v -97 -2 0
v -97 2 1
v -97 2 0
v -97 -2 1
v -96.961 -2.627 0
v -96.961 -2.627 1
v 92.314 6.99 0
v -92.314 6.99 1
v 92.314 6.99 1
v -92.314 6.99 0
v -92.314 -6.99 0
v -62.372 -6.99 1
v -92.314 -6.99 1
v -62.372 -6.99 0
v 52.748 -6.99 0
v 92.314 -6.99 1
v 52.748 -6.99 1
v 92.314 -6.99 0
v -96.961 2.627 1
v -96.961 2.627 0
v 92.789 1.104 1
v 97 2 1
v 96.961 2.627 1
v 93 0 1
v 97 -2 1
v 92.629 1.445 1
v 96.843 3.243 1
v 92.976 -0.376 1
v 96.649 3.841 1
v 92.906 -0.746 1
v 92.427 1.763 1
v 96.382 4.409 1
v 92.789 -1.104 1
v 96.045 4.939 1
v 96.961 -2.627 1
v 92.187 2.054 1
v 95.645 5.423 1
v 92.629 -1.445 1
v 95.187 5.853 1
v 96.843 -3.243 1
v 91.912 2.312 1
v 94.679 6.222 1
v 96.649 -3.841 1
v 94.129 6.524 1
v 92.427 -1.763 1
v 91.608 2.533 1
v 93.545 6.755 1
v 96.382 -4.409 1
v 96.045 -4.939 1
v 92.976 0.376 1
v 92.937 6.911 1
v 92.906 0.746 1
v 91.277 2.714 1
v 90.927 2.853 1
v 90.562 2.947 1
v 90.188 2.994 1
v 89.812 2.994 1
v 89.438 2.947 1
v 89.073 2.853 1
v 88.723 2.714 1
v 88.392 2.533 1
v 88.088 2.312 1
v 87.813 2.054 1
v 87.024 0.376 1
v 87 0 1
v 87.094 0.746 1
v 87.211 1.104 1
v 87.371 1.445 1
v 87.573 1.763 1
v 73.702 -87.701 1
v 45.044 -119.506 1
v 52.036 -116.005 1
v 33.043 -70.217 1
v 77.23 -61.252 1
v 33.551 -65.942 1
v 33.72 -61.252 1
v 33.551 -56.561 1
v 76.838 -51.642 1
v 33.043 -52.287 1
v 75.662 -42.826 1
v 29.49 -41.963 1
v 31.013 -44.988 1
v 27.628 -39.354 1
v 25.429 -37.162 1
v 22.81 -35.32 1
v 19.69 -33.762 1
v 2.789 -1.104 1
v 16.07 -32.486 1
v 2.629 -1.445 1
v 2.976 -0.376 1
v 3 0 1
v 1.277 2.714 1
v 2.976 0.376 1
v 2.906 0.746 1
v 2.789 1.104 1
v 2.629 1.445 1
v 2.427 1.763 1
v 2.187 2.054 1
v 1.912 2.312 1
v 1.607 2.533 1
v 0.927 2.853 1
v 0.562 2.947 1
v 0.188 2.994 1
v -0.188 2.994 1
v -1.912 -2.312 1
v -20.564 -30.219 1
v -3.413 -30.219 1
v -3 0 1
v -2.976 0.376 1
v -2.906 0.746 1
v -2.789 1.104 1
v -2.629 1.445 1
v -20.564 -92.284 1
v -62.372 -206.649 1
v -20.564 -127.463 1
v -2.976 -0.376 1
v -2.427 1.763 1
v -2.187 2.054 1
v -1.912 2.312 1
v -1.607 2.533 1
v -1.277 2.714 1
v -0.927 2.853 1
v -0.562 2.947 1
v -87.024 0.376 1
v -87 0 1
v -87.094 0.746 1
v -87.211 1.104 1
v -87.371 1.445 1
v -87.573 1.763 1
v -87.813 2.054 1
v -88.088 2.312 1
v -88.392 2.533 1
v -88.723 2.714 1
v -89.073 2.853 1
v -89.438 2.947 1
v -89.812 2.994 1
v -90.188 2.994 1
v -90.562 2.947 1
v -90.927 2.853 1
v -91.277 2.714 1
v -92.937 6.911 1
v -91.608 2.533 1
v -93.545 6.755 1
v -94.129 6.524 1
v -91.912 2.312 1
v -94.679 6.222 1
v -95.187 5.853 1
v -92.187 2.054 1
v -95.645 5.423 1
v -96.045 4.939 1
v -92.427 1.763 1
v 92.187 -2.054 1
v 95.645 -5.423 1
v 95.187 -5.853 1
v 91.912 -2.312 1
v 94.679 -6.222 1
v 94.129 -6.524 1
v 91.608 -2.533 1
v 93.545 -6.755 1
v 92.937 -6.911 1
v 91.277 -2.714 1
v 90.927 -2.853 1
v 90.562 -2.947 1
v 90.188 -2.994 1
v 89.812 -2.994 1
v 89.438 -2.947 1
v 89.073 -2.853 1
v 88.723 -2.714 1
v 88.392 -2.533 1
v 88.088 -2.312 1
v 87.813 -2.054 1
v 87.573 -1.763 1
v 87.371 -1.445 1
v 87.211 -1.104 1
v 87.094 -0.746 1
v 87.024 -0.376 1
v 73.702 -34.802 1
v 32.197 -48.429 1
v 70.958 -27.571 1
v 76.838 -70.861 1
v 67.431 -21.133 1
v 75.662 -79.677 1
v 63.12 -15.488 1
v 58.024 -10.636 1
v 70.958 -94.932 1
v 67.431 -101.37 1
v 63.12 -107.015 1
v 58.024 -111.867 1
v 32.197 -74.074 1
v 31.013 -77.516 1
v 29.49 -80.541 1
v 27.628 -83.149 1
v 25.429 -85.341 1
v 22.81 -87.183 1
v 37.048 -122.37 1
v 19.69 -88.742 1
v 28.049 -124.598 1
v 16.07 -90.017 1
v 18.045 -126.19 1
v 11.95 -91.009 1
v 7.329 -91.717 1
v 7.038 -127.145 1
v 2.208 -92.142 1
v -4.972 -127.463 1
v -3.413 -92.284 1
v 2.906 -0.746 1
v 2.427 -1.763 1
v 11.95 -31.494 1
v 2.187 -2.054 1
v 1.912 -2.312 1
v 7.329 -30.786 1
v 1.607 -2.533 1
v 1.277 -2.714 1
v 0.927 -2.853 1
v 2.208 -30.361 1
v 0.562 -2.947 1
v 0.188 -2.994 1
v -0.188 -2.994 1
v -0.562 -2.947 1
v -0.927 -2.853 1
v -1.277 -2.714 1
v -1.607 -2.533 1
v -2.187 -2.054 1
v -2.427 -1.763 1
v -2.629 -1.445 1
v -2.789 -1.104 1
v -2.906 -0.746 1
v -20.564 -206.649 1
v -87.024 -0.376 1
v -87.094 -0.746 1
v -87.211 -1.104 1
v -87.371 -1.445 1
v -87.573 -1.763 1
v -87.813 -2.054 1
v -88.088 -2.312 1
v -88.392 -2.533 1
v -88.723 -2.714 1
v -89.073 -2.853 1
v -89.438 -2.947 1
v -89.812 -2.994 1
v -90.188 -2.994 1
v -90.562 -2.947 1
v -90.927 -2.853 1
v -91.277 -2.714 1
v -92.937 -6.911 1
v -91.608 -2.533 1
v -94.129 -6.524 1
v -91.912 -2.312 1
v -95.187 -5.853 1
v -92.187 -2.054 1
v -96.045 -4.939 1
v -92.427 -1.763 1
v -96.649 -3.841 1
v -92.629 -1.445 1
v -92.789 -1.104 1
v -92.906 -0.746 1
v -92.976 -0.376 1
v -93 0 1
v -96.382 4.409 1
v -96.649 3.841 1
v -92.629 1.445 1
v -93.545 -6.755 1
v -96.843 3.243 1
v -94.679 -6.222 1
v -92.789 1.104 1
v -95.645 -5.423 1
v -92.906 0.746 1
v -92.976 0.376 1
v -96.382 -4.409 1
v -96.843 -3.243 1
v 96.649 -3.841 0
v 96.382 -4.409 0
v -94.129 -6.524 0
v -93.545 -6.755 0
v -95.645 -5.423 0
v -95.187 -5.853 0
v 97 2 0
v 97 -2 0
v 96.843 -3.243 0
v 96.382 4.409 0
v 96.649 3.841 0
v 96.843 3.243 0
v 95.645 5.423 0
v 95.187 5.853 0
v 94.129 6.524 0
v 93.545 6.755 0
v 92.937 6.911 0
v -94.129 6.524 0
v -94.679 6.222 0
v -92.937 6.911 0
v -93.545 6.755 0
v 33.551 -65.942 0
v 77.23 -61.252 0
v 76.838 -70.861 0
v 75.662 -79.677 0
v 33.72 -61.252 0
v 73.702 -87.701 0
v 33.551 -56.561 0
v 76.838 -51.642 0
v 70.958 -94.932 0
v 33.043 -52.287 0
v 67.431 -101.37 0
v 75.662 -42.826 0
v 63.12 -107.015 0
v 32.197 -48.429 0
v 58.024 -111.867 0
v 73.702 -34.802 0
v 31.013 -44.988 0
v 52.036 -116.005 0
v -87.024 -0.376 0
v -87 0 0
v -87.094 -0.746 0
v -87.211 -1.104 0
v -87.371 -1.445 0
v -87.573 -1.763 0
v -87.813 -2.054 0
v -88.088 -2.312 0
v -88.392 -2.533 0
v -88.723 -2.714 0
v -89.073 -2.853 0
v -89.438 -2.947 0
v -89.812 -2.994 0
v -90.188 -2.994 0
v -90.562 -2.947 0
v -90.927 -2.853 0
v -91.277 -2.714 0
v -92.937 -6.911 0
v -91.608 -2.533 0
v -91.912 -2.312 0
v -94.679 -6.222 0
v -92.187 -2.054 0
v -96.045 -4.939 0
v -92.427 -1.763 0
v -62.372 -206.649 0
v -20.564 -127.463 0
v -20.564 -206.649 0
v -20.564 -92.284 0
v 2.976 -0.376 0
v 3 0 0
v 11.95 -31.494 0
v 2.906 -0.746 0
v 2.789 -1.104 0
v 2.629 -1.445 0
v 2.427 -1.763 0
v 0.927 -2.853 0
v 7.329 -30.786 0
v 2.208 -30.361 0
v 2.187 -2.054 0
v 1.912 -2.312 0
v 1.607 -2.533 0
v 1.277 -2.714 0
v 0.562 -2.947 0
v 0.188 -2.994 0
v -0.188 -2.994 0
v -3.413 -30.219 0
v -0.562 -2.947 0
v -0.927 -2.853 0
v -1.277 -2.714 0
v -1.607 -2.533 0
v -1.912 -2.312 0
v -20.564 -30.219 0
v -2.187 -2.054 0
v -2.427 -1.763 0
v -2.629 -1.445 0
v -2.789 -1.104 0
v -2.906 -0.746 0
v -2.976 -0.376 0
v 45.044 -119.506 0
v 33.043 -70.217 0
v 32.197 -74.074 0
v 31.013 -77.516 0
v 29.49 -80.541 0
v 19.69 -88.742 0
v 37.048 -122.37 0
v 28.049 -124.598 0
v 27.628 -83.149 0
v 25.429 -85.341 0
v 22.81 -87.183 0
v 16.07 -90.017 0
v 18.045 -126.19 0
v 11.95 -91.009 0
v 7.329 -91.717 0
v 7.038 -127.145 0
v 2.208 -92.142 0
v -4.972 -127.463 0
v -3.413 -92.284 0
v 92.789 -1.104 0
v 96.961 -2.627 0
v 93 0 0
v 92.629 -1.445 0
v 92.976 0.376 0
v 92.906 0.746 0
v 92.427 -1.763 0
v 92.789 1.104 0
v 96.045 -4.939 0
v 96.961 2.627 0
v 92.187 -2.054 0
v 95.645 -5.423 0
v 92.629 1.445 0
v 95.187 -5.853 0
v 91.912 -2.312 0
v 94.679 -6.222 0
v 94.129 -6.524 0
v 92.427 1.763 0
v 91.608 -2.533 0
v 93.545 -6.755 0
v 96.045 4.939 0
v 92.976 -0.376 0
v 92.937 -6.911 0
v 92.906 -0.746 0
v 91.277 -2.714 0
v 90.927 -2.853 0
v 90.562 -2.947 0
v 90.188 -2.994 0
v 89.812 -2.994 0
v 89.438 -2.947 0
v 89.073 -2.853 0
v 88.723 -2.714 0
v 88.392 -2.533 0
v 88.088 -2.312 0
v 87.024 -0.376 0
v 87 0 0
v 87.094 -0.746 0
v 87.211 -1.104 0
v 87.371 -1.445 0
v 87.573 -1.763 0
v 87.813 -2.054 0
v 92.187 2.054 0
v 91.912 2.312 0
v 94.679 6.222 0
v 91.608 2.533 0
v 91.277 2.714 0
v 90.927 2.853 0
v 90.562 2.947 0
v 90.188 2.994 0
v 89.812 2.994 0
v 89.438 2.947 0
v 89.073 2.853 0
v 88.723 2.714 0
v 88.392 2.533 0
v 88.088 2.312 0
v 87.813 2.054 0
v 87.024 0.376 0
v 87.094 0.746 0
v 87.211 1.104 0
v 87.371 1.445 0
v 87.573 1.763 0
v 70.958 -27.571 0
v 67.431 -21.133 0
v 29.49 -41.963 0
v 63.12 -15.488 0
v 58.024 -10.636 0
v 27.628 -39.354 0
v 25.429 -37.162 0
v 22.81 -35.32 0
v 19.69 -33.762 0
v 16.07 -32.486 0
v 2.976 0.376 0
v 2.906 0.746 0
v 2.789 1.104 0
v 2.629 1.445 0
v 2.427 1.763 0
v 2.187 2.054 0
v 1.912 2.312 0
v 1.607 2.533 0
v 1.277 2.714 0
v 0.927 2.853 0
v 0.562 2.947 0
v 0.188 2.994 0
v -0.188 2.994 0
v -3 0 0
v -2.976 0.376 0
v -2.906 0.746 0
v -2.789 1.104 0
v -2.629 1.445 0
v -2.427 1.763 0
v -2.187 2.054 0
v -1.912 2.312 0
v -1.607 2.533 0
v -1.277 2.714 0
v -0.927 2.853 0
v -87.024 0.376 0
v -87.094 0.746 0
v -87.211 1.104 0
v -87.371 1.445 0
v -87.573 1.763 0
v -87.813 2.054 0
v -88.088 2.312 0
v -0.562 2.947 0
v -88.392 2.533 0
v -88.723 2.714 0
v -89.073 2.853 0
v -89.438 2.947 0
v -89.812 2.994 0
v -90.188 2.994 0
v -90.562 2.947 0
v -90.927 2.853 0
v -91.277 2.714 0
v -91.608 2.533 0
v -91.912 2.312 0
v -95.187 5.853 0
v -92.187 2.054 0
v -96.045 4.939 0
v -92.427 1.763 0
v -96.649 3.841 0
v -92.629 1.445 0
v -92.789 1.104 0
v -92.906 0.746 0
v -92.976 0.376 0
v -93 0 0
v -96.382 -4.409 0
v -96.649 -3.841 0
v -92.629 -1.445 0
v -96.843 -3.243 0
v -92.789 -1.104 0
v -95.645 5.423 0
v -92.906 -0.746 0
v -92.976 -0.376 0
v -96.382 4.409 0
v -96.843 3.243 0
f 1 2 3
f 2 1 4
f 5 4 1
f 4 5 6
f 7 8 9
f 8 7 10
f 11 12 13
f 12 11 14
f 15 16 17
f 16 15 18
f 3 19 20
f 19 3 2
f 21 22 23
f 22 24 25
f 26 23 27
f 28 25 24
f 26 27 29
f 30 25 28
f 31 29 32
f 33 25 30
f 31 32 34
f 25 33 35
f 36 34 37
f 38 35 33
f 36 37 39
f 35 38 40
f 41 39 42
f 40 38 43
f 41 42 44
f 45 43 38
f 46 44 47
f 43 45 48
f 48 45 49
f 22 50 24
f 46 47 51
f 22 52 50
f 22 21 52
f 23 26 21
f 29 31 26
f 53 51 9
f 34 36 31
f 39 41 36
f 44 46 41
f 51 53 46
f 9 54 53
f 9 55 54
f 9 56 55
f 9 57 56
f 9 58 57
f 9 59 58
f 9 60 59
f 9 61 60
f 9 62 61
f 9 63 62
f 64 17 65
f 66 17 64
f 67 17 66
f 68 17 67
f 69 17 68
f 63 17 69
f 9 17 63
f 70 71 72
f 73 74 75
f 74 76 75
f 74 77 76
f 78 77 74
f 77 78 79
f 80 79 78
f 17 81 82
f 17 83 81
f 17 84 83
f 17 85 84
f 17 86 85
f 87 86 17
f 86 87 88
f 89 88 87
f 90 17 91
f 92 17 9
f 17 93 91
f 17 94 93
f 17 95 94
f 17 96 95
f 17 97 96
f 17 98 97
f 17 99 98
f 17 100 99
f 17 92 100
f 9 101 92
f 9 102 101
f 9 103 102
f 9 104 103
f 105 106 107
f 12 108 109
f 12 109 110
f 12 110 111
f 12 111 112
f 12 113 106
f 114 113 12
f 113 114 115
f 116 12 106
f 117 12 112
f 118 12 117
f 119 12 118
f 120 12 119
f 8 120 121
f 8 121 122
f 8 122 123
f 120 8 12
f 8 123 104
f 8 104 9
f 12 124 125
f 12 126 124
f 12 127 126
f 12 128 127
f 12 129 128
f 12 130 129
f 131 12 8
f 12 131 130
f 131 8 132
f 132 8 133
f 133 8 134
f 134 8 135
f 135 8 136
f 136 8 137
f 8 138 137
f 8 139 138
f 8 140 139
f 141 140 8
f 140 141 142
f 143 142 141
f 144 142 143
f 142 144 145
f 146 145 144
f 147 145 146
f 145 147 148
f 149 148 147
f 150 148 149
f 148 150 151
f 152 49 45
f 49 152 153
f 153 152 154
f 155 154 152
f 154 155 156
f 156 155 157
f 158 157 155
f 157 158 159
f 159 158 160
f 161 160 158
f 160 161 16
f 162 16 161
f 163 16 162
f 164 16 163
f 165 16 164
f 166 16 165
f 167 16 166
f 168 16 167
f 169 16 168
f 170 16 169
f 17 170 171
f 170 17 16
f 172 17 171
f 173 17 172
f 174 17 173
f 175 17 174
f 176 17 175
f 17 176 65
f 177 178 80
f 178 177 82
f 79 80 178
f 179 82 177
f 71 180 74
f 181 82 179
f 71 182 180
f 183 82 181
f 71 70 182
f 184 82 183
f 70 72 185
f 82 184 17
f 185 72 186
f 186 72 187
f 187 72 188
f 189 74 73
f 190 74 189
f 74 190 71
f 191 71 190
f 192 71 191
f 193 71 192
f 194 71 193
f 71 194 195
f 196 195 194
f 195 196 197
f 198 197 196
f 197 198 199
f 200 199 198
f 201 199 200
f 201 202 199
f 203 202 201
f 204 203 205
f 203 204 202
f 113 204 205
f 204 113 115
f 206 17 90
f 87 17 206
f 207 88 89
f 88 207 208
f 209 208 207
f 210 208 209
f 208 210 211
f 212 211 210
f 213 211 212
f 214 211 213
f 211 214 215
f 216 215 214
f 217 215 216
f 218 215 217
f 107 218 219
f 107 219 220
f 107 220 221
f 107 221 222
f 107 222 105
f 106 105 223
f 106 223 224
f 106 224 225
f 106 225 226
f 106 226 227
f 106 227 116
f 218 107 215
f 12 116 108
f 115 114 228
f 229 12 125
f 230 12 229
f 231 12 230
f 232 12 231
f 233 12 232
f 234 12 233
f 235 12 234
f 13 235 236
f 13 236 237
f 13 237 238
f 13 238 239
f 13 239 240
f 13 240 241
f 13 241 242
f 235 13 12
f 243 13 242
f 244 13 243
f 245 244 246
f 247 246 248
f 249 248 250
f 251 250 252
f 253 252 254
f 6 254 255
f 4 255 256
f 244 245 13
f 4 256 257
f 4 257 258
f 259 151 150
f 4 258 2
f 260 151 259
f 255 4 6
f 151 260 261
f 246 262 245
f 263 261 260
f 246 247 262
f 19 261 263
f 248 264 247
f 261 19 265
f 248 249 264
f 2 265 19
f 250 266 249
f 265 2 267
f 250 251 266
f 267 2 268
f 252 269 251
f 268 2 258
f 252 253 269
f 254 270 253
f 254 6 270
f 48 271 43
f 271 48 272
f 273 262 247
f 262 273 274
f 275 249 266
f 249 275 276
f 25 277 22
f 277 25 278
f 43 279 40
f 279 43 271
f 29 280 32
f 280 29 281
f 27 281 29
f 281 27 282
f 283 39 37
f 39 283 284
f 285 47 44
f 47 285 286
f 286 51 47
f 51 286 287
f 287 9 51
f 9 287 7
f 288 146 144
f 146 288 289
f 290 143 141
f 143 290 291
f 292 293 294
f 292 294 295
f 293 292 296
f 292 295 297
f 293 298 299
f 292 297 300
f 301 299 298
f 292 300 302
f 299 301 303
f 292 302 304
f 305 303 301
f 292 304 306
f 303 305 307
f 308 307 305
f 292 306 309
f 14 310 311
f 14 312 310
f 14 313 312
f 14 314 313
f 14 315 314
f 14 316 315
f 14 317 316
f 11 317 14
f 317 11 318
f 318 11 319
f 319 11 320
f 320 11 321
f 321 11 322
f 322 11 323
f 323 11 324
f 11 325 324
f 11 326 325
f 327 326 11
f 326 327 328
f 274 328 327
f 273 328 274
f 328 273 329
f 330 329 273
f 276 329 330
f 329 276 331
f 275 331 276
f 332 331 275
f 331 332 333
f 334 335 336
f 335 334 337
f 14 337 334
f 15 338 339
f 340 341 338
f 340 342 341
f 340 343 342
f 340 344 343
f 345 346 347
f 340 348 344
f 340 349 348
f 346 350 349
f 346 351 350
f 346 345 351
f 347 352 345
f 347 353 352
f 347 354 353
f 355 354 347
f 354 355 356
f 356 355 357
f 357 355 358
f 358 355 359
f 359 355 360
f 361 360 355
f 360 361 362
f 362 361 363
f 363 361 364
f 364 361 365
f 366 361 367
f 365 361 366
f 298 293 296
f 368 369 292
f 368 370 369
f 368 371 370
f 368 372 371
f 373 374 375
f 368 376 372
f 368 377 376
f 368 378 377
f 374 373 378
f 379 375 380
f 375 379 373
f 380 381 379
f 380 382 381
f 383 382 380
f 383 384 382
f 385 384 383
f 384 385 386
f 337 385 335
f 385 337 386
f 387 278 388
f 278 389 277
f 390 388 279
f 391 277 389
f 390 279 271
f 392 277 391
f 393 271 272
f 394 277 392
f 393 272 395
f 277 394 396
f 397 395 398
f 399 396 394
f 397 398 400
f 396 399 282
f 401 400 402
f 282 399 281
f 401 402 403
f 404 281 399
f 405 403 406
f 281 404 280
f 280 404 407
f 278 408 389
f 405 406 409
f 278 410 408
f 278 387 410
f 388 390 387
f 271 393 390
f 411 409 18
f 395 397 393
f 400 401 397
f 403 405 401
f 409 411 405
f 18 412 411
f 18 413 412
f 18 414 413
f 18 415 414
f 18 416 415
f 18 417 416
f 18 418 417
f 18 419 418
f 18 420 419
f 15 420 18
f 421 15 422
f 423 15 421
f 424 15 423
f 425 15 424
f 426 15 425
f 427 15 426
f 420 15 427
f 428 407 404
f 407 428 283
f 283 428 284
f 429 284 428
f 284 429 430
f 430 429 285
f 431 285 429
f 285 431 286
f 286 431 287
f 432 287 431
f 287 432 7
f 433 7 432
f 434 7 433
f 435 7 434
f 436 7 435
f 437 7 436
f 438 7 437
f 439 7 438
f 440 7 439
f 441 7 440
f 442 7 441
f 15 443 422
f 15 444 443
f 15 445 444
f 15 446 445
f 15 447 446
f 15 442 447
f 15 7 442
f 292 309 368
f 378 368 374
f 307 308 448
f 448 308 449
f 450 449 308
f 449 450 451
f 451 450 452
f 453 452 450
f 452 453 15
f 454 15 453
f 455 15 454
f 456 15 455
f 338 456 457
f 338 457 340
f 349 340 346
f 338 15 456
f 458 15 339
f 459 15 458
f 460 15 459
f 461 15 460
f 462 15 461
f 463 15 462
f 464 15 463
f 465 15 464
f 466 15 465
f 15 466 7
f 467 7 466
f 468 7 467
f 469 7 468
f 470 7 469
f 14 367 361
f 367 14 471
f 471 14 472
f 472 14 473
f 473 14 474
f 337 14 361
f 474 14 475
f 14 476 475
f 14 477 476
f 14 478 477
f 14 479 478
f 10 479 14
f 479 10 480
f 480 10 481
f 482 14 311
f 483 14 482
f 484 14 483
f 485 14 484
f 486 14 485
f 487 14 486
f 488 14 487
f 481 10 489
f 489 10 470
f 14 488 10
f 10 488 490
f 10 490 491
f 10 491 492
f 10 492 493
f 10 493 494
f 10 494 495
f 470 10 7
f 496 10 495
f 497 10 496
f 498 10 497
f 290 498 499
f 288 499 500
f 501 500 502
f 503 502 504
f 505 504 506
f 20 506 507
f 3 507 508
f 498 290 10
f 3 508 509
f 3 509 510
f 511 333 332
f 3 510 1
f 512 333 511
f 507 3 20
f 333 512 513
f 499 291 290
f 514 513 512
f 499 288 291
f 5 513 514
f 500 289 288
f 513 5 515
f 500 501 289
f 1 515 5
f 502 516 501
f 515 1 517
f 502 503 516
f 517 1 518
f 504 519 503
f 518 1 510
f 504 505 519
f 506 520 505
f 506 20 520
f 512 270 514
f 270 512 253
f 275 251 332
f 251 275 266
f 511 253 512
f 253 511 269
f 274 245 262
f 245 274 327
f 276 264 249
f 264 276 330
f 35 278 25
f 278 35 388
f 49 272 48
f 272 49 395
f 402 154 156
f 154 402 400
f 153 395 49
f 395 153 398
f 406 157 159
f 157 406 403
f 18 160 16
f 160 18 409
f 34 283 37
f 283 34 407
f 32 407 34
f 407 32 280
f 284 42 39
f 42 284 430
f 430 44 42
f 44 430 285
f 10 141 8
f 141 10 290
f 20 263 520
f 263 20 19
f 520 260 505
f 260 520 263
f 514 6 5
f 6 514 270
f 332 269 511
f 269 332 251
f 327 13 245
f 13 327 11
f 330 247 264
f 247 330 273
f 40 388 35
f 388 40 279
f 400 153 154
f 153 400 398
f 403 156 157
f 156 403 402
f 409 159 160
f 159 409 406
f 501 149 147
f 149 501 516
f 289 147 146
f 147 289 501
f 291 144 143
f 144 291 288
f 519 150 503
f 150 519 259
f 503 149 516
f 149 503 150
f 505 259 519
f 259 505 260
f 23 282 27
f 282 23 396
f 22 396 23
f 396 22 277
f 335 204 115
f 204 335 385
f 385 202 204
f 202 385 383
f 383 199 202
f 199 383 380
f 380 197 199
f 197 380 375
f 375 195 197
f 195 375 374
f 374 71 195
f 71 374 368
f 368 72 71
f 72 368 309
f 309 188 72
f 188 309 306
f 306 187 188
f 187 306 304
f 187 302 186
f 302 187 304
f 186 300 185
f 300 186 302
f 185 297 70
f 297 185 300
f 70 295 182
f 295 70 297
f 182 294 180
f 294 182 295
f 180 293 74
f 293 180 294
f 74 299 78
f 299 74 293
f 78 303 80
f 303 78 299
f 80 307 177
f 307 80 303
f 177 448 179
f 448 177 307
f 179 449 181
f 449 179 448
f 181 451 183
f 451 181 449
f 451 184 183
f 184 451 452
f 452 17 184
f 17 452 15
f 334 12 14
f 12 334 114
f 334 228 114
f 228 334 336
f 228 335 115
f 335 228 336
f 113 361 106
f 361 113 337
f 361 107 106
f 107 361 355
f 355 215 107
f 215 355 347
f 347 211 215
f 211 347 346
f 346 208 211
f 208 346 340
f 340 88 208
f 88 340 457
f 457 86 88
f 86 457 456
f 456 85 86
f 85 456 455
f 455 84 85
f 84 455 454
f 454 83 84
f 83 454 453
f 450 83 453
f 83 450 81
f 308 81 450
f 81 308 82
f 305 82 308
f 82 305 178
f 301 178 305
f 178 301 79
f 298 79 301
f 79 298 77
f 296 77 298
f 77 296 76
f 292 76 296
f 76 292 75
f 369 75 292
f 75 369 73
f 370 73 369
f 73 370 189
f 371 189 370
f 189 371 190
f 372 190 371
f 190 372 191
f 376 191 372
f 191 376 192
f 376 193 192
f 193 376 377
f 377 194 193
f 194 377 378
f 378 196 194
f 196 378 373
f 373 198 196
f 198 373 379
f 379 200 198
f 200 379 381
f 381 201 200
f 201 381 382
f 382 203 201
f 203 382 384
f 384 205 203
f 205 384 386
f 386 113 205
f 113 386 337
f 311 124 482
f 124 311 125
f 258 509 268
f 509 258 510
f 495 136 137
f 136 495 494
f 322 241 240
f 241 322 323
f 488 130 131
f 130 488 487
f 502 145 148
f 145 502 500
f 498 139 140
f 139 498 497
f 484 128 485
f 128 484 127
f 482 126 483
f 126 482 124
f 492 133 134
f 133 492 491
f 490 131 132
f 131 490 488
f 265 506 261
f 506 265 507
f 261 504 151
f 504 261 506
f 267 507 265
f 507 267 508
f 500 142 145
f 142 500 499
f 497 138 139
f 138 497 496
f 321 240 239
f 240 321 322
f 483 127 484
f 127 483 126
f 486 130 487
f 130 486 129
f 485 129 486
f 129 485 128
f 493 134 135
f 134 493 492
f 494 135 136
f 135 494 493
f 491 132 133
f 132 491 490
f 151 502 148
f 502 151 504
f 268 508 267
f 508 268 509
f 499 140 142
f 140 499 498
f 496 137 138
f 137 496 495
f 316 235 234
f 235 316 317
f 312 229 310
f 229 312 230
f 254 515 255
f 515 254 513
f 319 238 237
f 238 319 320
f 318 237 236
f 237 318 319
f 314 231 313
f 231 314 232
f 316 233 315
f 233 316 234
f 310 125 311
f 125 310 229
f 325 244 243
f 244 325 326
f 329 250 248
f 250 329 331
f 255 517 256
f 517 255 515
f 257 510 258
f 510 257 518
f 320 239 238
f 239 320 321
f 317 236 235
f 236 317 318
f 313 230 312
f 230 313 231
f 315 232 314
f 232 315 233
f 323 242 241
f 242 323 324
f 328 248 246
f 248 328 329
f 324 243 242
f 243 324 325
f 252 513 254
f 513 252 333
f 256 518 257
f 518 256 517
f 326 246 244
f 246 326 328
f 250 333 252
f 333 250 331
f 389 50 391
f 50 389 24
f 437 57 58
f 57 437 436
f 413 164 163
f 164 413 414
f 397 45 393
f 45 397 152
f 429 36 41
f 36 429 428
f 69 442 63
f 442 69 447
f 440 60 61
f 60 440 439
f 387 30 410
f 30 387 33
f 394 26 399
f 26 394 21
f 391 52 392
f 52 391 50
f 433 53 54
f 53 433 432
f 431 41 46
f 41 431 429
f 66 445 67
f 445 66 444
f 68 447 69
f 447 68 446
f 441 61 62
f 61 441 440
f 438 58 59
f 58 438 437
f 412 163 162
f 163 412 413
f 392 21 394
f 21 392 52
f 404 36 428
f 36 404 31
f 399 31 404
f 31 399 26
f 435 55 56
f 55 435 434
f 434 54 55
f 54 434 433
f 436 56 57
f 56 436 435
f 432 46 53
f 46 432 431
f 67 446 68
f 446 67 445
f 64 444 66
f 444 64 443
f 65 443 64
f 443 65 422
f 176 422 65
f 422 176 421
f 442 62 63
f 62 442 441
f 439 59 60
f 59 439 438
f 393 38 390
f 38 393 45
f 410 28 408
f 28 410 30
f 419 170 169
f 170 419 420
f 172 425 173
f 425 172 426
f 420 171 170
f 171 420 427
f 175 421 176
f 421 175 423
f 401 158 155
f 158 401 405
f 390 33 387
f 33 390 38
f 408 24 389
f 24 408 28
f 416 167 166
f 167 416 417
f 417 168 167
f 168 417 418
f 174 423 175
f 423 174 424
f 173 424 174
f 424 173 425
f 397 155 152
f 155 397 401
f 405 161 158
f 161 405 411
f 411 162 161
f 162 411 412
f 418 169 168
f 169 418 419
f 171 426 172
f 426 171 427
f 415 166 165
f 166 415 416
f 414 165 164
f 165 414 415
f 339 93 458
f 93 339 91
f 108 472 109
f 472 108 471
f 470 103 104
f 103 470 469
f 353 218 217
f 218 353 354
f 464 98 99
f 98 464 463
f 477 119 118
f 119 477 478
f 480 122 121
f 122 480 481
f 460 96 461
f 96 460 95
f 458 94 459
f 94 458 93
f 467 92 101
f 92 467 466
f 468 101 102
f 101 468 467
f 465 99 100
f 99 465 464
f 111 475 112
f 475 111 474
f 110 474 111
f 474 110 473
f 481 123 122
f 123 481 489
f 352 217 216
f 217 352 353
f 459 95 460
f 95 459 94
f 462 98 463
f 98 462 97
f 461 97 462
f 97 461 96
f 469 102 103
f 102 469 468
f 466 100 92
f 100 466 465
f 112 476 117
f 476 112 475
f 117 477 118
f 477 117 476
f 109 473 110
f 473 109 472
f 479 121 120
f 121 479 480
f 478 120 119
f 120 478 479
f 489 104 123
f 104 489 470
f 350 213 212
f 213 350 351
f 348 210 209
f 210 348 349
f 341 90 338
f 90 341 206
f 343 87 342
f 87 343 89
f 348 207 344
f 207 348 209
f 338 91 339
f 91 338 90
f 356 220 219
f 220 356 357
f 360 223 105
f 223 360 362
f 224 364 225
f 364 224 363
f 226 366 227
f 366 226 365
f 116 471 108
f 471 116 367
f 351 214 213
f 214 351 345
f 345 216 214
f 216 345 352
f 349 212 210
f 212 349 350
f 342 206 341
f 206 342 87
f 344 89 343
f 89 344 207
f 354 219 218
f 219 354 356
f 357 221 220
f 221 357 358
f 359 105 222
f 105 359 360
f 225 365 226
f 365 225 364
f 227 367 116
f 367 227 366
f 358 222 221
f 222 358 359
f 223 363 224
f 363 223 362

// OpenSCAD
$fn = 50;


difference() {
	union() {
		translate(v = [0, 0, 0]) {
			rotate(a = [0, 0, 0]) {
				hull() {
					translate(v = [-92.0000000000, 2.0000000000, 0]) {
						rotate(a = [0, 0, 0]) {
							translate(v = [0, 0, 0]) {
								rotate(a = [0, 0, 0]) {
									cylinder(h = 1, r = 5);
								}
							}
						}
					}
					translate(v = [92.0000000000, 2.0000000000, 0]) {
						rotate(a = [0, 0, 0]) {
							translate(v = [0, 0, 0]) {
								rotate(a = [0, 0, 0]) {
									cylinder(h = 1, r = 5);
								}
							}
						}
					}
					translate(v = [-92.0000000000, -2.0000000000, 0]) {
						rotate(a = [0, 0, 0]) {
							translate(v = [0, 0, 0]) {
								rotate(a = [0, 0, 0]) {
									cylinder(h = 1, r = 5);
								}
							}
						}
					}
					translate(v = [92.0000000000, -2.0000000000, 0]) {
						rotate(a = [0, 0, 0]) {
							translate(v = [0, 0, 0]) {
								rotate(a = [0, 0, 0]) {
									cylinder(h = 1, r = 5);
								}
							}
						}
					}
				}
			}
		}
		translate(v = [0, 0, 0]) {
			rotate(a = [0, 0, 0]) {
				linear_extrude(height = 1) {
					text(font = "DejaVu Sans Mono:style=Bold", halign = "center", size = 209.0000000000, text = "P", valign = "top");
				}
			}
		}
	}
	union() {
		translate(v = [-90.0000000000, 0.0000000000, -125.0000000000]) {
			rotate(a = [0, 0, 0]) {
				cylinder(h = 250, r = 3.0000000000);
			}
		}
		translate(v = [90.0000000000, 0.0000000000, -125.0000000000]) {
			rotate(a = [0, 0, 0]) {
				cylinder(h = 250, r = 3.0000000000);
			}
		}
		translate(v = [90.0000000000, 0.0000000000, -125.0000000000]) {
			rotate(a = [0, 0, 0]) {
				cylinder(h = 250, r = 3.0000000000);
			}
		}
		translate(v = [0, 0, -125.0000000000]) {
			rotate(a = [0, 0, 0]) {
				cylinder(h = 250, r = 3.0000000000);
			}
		}
	}
}
